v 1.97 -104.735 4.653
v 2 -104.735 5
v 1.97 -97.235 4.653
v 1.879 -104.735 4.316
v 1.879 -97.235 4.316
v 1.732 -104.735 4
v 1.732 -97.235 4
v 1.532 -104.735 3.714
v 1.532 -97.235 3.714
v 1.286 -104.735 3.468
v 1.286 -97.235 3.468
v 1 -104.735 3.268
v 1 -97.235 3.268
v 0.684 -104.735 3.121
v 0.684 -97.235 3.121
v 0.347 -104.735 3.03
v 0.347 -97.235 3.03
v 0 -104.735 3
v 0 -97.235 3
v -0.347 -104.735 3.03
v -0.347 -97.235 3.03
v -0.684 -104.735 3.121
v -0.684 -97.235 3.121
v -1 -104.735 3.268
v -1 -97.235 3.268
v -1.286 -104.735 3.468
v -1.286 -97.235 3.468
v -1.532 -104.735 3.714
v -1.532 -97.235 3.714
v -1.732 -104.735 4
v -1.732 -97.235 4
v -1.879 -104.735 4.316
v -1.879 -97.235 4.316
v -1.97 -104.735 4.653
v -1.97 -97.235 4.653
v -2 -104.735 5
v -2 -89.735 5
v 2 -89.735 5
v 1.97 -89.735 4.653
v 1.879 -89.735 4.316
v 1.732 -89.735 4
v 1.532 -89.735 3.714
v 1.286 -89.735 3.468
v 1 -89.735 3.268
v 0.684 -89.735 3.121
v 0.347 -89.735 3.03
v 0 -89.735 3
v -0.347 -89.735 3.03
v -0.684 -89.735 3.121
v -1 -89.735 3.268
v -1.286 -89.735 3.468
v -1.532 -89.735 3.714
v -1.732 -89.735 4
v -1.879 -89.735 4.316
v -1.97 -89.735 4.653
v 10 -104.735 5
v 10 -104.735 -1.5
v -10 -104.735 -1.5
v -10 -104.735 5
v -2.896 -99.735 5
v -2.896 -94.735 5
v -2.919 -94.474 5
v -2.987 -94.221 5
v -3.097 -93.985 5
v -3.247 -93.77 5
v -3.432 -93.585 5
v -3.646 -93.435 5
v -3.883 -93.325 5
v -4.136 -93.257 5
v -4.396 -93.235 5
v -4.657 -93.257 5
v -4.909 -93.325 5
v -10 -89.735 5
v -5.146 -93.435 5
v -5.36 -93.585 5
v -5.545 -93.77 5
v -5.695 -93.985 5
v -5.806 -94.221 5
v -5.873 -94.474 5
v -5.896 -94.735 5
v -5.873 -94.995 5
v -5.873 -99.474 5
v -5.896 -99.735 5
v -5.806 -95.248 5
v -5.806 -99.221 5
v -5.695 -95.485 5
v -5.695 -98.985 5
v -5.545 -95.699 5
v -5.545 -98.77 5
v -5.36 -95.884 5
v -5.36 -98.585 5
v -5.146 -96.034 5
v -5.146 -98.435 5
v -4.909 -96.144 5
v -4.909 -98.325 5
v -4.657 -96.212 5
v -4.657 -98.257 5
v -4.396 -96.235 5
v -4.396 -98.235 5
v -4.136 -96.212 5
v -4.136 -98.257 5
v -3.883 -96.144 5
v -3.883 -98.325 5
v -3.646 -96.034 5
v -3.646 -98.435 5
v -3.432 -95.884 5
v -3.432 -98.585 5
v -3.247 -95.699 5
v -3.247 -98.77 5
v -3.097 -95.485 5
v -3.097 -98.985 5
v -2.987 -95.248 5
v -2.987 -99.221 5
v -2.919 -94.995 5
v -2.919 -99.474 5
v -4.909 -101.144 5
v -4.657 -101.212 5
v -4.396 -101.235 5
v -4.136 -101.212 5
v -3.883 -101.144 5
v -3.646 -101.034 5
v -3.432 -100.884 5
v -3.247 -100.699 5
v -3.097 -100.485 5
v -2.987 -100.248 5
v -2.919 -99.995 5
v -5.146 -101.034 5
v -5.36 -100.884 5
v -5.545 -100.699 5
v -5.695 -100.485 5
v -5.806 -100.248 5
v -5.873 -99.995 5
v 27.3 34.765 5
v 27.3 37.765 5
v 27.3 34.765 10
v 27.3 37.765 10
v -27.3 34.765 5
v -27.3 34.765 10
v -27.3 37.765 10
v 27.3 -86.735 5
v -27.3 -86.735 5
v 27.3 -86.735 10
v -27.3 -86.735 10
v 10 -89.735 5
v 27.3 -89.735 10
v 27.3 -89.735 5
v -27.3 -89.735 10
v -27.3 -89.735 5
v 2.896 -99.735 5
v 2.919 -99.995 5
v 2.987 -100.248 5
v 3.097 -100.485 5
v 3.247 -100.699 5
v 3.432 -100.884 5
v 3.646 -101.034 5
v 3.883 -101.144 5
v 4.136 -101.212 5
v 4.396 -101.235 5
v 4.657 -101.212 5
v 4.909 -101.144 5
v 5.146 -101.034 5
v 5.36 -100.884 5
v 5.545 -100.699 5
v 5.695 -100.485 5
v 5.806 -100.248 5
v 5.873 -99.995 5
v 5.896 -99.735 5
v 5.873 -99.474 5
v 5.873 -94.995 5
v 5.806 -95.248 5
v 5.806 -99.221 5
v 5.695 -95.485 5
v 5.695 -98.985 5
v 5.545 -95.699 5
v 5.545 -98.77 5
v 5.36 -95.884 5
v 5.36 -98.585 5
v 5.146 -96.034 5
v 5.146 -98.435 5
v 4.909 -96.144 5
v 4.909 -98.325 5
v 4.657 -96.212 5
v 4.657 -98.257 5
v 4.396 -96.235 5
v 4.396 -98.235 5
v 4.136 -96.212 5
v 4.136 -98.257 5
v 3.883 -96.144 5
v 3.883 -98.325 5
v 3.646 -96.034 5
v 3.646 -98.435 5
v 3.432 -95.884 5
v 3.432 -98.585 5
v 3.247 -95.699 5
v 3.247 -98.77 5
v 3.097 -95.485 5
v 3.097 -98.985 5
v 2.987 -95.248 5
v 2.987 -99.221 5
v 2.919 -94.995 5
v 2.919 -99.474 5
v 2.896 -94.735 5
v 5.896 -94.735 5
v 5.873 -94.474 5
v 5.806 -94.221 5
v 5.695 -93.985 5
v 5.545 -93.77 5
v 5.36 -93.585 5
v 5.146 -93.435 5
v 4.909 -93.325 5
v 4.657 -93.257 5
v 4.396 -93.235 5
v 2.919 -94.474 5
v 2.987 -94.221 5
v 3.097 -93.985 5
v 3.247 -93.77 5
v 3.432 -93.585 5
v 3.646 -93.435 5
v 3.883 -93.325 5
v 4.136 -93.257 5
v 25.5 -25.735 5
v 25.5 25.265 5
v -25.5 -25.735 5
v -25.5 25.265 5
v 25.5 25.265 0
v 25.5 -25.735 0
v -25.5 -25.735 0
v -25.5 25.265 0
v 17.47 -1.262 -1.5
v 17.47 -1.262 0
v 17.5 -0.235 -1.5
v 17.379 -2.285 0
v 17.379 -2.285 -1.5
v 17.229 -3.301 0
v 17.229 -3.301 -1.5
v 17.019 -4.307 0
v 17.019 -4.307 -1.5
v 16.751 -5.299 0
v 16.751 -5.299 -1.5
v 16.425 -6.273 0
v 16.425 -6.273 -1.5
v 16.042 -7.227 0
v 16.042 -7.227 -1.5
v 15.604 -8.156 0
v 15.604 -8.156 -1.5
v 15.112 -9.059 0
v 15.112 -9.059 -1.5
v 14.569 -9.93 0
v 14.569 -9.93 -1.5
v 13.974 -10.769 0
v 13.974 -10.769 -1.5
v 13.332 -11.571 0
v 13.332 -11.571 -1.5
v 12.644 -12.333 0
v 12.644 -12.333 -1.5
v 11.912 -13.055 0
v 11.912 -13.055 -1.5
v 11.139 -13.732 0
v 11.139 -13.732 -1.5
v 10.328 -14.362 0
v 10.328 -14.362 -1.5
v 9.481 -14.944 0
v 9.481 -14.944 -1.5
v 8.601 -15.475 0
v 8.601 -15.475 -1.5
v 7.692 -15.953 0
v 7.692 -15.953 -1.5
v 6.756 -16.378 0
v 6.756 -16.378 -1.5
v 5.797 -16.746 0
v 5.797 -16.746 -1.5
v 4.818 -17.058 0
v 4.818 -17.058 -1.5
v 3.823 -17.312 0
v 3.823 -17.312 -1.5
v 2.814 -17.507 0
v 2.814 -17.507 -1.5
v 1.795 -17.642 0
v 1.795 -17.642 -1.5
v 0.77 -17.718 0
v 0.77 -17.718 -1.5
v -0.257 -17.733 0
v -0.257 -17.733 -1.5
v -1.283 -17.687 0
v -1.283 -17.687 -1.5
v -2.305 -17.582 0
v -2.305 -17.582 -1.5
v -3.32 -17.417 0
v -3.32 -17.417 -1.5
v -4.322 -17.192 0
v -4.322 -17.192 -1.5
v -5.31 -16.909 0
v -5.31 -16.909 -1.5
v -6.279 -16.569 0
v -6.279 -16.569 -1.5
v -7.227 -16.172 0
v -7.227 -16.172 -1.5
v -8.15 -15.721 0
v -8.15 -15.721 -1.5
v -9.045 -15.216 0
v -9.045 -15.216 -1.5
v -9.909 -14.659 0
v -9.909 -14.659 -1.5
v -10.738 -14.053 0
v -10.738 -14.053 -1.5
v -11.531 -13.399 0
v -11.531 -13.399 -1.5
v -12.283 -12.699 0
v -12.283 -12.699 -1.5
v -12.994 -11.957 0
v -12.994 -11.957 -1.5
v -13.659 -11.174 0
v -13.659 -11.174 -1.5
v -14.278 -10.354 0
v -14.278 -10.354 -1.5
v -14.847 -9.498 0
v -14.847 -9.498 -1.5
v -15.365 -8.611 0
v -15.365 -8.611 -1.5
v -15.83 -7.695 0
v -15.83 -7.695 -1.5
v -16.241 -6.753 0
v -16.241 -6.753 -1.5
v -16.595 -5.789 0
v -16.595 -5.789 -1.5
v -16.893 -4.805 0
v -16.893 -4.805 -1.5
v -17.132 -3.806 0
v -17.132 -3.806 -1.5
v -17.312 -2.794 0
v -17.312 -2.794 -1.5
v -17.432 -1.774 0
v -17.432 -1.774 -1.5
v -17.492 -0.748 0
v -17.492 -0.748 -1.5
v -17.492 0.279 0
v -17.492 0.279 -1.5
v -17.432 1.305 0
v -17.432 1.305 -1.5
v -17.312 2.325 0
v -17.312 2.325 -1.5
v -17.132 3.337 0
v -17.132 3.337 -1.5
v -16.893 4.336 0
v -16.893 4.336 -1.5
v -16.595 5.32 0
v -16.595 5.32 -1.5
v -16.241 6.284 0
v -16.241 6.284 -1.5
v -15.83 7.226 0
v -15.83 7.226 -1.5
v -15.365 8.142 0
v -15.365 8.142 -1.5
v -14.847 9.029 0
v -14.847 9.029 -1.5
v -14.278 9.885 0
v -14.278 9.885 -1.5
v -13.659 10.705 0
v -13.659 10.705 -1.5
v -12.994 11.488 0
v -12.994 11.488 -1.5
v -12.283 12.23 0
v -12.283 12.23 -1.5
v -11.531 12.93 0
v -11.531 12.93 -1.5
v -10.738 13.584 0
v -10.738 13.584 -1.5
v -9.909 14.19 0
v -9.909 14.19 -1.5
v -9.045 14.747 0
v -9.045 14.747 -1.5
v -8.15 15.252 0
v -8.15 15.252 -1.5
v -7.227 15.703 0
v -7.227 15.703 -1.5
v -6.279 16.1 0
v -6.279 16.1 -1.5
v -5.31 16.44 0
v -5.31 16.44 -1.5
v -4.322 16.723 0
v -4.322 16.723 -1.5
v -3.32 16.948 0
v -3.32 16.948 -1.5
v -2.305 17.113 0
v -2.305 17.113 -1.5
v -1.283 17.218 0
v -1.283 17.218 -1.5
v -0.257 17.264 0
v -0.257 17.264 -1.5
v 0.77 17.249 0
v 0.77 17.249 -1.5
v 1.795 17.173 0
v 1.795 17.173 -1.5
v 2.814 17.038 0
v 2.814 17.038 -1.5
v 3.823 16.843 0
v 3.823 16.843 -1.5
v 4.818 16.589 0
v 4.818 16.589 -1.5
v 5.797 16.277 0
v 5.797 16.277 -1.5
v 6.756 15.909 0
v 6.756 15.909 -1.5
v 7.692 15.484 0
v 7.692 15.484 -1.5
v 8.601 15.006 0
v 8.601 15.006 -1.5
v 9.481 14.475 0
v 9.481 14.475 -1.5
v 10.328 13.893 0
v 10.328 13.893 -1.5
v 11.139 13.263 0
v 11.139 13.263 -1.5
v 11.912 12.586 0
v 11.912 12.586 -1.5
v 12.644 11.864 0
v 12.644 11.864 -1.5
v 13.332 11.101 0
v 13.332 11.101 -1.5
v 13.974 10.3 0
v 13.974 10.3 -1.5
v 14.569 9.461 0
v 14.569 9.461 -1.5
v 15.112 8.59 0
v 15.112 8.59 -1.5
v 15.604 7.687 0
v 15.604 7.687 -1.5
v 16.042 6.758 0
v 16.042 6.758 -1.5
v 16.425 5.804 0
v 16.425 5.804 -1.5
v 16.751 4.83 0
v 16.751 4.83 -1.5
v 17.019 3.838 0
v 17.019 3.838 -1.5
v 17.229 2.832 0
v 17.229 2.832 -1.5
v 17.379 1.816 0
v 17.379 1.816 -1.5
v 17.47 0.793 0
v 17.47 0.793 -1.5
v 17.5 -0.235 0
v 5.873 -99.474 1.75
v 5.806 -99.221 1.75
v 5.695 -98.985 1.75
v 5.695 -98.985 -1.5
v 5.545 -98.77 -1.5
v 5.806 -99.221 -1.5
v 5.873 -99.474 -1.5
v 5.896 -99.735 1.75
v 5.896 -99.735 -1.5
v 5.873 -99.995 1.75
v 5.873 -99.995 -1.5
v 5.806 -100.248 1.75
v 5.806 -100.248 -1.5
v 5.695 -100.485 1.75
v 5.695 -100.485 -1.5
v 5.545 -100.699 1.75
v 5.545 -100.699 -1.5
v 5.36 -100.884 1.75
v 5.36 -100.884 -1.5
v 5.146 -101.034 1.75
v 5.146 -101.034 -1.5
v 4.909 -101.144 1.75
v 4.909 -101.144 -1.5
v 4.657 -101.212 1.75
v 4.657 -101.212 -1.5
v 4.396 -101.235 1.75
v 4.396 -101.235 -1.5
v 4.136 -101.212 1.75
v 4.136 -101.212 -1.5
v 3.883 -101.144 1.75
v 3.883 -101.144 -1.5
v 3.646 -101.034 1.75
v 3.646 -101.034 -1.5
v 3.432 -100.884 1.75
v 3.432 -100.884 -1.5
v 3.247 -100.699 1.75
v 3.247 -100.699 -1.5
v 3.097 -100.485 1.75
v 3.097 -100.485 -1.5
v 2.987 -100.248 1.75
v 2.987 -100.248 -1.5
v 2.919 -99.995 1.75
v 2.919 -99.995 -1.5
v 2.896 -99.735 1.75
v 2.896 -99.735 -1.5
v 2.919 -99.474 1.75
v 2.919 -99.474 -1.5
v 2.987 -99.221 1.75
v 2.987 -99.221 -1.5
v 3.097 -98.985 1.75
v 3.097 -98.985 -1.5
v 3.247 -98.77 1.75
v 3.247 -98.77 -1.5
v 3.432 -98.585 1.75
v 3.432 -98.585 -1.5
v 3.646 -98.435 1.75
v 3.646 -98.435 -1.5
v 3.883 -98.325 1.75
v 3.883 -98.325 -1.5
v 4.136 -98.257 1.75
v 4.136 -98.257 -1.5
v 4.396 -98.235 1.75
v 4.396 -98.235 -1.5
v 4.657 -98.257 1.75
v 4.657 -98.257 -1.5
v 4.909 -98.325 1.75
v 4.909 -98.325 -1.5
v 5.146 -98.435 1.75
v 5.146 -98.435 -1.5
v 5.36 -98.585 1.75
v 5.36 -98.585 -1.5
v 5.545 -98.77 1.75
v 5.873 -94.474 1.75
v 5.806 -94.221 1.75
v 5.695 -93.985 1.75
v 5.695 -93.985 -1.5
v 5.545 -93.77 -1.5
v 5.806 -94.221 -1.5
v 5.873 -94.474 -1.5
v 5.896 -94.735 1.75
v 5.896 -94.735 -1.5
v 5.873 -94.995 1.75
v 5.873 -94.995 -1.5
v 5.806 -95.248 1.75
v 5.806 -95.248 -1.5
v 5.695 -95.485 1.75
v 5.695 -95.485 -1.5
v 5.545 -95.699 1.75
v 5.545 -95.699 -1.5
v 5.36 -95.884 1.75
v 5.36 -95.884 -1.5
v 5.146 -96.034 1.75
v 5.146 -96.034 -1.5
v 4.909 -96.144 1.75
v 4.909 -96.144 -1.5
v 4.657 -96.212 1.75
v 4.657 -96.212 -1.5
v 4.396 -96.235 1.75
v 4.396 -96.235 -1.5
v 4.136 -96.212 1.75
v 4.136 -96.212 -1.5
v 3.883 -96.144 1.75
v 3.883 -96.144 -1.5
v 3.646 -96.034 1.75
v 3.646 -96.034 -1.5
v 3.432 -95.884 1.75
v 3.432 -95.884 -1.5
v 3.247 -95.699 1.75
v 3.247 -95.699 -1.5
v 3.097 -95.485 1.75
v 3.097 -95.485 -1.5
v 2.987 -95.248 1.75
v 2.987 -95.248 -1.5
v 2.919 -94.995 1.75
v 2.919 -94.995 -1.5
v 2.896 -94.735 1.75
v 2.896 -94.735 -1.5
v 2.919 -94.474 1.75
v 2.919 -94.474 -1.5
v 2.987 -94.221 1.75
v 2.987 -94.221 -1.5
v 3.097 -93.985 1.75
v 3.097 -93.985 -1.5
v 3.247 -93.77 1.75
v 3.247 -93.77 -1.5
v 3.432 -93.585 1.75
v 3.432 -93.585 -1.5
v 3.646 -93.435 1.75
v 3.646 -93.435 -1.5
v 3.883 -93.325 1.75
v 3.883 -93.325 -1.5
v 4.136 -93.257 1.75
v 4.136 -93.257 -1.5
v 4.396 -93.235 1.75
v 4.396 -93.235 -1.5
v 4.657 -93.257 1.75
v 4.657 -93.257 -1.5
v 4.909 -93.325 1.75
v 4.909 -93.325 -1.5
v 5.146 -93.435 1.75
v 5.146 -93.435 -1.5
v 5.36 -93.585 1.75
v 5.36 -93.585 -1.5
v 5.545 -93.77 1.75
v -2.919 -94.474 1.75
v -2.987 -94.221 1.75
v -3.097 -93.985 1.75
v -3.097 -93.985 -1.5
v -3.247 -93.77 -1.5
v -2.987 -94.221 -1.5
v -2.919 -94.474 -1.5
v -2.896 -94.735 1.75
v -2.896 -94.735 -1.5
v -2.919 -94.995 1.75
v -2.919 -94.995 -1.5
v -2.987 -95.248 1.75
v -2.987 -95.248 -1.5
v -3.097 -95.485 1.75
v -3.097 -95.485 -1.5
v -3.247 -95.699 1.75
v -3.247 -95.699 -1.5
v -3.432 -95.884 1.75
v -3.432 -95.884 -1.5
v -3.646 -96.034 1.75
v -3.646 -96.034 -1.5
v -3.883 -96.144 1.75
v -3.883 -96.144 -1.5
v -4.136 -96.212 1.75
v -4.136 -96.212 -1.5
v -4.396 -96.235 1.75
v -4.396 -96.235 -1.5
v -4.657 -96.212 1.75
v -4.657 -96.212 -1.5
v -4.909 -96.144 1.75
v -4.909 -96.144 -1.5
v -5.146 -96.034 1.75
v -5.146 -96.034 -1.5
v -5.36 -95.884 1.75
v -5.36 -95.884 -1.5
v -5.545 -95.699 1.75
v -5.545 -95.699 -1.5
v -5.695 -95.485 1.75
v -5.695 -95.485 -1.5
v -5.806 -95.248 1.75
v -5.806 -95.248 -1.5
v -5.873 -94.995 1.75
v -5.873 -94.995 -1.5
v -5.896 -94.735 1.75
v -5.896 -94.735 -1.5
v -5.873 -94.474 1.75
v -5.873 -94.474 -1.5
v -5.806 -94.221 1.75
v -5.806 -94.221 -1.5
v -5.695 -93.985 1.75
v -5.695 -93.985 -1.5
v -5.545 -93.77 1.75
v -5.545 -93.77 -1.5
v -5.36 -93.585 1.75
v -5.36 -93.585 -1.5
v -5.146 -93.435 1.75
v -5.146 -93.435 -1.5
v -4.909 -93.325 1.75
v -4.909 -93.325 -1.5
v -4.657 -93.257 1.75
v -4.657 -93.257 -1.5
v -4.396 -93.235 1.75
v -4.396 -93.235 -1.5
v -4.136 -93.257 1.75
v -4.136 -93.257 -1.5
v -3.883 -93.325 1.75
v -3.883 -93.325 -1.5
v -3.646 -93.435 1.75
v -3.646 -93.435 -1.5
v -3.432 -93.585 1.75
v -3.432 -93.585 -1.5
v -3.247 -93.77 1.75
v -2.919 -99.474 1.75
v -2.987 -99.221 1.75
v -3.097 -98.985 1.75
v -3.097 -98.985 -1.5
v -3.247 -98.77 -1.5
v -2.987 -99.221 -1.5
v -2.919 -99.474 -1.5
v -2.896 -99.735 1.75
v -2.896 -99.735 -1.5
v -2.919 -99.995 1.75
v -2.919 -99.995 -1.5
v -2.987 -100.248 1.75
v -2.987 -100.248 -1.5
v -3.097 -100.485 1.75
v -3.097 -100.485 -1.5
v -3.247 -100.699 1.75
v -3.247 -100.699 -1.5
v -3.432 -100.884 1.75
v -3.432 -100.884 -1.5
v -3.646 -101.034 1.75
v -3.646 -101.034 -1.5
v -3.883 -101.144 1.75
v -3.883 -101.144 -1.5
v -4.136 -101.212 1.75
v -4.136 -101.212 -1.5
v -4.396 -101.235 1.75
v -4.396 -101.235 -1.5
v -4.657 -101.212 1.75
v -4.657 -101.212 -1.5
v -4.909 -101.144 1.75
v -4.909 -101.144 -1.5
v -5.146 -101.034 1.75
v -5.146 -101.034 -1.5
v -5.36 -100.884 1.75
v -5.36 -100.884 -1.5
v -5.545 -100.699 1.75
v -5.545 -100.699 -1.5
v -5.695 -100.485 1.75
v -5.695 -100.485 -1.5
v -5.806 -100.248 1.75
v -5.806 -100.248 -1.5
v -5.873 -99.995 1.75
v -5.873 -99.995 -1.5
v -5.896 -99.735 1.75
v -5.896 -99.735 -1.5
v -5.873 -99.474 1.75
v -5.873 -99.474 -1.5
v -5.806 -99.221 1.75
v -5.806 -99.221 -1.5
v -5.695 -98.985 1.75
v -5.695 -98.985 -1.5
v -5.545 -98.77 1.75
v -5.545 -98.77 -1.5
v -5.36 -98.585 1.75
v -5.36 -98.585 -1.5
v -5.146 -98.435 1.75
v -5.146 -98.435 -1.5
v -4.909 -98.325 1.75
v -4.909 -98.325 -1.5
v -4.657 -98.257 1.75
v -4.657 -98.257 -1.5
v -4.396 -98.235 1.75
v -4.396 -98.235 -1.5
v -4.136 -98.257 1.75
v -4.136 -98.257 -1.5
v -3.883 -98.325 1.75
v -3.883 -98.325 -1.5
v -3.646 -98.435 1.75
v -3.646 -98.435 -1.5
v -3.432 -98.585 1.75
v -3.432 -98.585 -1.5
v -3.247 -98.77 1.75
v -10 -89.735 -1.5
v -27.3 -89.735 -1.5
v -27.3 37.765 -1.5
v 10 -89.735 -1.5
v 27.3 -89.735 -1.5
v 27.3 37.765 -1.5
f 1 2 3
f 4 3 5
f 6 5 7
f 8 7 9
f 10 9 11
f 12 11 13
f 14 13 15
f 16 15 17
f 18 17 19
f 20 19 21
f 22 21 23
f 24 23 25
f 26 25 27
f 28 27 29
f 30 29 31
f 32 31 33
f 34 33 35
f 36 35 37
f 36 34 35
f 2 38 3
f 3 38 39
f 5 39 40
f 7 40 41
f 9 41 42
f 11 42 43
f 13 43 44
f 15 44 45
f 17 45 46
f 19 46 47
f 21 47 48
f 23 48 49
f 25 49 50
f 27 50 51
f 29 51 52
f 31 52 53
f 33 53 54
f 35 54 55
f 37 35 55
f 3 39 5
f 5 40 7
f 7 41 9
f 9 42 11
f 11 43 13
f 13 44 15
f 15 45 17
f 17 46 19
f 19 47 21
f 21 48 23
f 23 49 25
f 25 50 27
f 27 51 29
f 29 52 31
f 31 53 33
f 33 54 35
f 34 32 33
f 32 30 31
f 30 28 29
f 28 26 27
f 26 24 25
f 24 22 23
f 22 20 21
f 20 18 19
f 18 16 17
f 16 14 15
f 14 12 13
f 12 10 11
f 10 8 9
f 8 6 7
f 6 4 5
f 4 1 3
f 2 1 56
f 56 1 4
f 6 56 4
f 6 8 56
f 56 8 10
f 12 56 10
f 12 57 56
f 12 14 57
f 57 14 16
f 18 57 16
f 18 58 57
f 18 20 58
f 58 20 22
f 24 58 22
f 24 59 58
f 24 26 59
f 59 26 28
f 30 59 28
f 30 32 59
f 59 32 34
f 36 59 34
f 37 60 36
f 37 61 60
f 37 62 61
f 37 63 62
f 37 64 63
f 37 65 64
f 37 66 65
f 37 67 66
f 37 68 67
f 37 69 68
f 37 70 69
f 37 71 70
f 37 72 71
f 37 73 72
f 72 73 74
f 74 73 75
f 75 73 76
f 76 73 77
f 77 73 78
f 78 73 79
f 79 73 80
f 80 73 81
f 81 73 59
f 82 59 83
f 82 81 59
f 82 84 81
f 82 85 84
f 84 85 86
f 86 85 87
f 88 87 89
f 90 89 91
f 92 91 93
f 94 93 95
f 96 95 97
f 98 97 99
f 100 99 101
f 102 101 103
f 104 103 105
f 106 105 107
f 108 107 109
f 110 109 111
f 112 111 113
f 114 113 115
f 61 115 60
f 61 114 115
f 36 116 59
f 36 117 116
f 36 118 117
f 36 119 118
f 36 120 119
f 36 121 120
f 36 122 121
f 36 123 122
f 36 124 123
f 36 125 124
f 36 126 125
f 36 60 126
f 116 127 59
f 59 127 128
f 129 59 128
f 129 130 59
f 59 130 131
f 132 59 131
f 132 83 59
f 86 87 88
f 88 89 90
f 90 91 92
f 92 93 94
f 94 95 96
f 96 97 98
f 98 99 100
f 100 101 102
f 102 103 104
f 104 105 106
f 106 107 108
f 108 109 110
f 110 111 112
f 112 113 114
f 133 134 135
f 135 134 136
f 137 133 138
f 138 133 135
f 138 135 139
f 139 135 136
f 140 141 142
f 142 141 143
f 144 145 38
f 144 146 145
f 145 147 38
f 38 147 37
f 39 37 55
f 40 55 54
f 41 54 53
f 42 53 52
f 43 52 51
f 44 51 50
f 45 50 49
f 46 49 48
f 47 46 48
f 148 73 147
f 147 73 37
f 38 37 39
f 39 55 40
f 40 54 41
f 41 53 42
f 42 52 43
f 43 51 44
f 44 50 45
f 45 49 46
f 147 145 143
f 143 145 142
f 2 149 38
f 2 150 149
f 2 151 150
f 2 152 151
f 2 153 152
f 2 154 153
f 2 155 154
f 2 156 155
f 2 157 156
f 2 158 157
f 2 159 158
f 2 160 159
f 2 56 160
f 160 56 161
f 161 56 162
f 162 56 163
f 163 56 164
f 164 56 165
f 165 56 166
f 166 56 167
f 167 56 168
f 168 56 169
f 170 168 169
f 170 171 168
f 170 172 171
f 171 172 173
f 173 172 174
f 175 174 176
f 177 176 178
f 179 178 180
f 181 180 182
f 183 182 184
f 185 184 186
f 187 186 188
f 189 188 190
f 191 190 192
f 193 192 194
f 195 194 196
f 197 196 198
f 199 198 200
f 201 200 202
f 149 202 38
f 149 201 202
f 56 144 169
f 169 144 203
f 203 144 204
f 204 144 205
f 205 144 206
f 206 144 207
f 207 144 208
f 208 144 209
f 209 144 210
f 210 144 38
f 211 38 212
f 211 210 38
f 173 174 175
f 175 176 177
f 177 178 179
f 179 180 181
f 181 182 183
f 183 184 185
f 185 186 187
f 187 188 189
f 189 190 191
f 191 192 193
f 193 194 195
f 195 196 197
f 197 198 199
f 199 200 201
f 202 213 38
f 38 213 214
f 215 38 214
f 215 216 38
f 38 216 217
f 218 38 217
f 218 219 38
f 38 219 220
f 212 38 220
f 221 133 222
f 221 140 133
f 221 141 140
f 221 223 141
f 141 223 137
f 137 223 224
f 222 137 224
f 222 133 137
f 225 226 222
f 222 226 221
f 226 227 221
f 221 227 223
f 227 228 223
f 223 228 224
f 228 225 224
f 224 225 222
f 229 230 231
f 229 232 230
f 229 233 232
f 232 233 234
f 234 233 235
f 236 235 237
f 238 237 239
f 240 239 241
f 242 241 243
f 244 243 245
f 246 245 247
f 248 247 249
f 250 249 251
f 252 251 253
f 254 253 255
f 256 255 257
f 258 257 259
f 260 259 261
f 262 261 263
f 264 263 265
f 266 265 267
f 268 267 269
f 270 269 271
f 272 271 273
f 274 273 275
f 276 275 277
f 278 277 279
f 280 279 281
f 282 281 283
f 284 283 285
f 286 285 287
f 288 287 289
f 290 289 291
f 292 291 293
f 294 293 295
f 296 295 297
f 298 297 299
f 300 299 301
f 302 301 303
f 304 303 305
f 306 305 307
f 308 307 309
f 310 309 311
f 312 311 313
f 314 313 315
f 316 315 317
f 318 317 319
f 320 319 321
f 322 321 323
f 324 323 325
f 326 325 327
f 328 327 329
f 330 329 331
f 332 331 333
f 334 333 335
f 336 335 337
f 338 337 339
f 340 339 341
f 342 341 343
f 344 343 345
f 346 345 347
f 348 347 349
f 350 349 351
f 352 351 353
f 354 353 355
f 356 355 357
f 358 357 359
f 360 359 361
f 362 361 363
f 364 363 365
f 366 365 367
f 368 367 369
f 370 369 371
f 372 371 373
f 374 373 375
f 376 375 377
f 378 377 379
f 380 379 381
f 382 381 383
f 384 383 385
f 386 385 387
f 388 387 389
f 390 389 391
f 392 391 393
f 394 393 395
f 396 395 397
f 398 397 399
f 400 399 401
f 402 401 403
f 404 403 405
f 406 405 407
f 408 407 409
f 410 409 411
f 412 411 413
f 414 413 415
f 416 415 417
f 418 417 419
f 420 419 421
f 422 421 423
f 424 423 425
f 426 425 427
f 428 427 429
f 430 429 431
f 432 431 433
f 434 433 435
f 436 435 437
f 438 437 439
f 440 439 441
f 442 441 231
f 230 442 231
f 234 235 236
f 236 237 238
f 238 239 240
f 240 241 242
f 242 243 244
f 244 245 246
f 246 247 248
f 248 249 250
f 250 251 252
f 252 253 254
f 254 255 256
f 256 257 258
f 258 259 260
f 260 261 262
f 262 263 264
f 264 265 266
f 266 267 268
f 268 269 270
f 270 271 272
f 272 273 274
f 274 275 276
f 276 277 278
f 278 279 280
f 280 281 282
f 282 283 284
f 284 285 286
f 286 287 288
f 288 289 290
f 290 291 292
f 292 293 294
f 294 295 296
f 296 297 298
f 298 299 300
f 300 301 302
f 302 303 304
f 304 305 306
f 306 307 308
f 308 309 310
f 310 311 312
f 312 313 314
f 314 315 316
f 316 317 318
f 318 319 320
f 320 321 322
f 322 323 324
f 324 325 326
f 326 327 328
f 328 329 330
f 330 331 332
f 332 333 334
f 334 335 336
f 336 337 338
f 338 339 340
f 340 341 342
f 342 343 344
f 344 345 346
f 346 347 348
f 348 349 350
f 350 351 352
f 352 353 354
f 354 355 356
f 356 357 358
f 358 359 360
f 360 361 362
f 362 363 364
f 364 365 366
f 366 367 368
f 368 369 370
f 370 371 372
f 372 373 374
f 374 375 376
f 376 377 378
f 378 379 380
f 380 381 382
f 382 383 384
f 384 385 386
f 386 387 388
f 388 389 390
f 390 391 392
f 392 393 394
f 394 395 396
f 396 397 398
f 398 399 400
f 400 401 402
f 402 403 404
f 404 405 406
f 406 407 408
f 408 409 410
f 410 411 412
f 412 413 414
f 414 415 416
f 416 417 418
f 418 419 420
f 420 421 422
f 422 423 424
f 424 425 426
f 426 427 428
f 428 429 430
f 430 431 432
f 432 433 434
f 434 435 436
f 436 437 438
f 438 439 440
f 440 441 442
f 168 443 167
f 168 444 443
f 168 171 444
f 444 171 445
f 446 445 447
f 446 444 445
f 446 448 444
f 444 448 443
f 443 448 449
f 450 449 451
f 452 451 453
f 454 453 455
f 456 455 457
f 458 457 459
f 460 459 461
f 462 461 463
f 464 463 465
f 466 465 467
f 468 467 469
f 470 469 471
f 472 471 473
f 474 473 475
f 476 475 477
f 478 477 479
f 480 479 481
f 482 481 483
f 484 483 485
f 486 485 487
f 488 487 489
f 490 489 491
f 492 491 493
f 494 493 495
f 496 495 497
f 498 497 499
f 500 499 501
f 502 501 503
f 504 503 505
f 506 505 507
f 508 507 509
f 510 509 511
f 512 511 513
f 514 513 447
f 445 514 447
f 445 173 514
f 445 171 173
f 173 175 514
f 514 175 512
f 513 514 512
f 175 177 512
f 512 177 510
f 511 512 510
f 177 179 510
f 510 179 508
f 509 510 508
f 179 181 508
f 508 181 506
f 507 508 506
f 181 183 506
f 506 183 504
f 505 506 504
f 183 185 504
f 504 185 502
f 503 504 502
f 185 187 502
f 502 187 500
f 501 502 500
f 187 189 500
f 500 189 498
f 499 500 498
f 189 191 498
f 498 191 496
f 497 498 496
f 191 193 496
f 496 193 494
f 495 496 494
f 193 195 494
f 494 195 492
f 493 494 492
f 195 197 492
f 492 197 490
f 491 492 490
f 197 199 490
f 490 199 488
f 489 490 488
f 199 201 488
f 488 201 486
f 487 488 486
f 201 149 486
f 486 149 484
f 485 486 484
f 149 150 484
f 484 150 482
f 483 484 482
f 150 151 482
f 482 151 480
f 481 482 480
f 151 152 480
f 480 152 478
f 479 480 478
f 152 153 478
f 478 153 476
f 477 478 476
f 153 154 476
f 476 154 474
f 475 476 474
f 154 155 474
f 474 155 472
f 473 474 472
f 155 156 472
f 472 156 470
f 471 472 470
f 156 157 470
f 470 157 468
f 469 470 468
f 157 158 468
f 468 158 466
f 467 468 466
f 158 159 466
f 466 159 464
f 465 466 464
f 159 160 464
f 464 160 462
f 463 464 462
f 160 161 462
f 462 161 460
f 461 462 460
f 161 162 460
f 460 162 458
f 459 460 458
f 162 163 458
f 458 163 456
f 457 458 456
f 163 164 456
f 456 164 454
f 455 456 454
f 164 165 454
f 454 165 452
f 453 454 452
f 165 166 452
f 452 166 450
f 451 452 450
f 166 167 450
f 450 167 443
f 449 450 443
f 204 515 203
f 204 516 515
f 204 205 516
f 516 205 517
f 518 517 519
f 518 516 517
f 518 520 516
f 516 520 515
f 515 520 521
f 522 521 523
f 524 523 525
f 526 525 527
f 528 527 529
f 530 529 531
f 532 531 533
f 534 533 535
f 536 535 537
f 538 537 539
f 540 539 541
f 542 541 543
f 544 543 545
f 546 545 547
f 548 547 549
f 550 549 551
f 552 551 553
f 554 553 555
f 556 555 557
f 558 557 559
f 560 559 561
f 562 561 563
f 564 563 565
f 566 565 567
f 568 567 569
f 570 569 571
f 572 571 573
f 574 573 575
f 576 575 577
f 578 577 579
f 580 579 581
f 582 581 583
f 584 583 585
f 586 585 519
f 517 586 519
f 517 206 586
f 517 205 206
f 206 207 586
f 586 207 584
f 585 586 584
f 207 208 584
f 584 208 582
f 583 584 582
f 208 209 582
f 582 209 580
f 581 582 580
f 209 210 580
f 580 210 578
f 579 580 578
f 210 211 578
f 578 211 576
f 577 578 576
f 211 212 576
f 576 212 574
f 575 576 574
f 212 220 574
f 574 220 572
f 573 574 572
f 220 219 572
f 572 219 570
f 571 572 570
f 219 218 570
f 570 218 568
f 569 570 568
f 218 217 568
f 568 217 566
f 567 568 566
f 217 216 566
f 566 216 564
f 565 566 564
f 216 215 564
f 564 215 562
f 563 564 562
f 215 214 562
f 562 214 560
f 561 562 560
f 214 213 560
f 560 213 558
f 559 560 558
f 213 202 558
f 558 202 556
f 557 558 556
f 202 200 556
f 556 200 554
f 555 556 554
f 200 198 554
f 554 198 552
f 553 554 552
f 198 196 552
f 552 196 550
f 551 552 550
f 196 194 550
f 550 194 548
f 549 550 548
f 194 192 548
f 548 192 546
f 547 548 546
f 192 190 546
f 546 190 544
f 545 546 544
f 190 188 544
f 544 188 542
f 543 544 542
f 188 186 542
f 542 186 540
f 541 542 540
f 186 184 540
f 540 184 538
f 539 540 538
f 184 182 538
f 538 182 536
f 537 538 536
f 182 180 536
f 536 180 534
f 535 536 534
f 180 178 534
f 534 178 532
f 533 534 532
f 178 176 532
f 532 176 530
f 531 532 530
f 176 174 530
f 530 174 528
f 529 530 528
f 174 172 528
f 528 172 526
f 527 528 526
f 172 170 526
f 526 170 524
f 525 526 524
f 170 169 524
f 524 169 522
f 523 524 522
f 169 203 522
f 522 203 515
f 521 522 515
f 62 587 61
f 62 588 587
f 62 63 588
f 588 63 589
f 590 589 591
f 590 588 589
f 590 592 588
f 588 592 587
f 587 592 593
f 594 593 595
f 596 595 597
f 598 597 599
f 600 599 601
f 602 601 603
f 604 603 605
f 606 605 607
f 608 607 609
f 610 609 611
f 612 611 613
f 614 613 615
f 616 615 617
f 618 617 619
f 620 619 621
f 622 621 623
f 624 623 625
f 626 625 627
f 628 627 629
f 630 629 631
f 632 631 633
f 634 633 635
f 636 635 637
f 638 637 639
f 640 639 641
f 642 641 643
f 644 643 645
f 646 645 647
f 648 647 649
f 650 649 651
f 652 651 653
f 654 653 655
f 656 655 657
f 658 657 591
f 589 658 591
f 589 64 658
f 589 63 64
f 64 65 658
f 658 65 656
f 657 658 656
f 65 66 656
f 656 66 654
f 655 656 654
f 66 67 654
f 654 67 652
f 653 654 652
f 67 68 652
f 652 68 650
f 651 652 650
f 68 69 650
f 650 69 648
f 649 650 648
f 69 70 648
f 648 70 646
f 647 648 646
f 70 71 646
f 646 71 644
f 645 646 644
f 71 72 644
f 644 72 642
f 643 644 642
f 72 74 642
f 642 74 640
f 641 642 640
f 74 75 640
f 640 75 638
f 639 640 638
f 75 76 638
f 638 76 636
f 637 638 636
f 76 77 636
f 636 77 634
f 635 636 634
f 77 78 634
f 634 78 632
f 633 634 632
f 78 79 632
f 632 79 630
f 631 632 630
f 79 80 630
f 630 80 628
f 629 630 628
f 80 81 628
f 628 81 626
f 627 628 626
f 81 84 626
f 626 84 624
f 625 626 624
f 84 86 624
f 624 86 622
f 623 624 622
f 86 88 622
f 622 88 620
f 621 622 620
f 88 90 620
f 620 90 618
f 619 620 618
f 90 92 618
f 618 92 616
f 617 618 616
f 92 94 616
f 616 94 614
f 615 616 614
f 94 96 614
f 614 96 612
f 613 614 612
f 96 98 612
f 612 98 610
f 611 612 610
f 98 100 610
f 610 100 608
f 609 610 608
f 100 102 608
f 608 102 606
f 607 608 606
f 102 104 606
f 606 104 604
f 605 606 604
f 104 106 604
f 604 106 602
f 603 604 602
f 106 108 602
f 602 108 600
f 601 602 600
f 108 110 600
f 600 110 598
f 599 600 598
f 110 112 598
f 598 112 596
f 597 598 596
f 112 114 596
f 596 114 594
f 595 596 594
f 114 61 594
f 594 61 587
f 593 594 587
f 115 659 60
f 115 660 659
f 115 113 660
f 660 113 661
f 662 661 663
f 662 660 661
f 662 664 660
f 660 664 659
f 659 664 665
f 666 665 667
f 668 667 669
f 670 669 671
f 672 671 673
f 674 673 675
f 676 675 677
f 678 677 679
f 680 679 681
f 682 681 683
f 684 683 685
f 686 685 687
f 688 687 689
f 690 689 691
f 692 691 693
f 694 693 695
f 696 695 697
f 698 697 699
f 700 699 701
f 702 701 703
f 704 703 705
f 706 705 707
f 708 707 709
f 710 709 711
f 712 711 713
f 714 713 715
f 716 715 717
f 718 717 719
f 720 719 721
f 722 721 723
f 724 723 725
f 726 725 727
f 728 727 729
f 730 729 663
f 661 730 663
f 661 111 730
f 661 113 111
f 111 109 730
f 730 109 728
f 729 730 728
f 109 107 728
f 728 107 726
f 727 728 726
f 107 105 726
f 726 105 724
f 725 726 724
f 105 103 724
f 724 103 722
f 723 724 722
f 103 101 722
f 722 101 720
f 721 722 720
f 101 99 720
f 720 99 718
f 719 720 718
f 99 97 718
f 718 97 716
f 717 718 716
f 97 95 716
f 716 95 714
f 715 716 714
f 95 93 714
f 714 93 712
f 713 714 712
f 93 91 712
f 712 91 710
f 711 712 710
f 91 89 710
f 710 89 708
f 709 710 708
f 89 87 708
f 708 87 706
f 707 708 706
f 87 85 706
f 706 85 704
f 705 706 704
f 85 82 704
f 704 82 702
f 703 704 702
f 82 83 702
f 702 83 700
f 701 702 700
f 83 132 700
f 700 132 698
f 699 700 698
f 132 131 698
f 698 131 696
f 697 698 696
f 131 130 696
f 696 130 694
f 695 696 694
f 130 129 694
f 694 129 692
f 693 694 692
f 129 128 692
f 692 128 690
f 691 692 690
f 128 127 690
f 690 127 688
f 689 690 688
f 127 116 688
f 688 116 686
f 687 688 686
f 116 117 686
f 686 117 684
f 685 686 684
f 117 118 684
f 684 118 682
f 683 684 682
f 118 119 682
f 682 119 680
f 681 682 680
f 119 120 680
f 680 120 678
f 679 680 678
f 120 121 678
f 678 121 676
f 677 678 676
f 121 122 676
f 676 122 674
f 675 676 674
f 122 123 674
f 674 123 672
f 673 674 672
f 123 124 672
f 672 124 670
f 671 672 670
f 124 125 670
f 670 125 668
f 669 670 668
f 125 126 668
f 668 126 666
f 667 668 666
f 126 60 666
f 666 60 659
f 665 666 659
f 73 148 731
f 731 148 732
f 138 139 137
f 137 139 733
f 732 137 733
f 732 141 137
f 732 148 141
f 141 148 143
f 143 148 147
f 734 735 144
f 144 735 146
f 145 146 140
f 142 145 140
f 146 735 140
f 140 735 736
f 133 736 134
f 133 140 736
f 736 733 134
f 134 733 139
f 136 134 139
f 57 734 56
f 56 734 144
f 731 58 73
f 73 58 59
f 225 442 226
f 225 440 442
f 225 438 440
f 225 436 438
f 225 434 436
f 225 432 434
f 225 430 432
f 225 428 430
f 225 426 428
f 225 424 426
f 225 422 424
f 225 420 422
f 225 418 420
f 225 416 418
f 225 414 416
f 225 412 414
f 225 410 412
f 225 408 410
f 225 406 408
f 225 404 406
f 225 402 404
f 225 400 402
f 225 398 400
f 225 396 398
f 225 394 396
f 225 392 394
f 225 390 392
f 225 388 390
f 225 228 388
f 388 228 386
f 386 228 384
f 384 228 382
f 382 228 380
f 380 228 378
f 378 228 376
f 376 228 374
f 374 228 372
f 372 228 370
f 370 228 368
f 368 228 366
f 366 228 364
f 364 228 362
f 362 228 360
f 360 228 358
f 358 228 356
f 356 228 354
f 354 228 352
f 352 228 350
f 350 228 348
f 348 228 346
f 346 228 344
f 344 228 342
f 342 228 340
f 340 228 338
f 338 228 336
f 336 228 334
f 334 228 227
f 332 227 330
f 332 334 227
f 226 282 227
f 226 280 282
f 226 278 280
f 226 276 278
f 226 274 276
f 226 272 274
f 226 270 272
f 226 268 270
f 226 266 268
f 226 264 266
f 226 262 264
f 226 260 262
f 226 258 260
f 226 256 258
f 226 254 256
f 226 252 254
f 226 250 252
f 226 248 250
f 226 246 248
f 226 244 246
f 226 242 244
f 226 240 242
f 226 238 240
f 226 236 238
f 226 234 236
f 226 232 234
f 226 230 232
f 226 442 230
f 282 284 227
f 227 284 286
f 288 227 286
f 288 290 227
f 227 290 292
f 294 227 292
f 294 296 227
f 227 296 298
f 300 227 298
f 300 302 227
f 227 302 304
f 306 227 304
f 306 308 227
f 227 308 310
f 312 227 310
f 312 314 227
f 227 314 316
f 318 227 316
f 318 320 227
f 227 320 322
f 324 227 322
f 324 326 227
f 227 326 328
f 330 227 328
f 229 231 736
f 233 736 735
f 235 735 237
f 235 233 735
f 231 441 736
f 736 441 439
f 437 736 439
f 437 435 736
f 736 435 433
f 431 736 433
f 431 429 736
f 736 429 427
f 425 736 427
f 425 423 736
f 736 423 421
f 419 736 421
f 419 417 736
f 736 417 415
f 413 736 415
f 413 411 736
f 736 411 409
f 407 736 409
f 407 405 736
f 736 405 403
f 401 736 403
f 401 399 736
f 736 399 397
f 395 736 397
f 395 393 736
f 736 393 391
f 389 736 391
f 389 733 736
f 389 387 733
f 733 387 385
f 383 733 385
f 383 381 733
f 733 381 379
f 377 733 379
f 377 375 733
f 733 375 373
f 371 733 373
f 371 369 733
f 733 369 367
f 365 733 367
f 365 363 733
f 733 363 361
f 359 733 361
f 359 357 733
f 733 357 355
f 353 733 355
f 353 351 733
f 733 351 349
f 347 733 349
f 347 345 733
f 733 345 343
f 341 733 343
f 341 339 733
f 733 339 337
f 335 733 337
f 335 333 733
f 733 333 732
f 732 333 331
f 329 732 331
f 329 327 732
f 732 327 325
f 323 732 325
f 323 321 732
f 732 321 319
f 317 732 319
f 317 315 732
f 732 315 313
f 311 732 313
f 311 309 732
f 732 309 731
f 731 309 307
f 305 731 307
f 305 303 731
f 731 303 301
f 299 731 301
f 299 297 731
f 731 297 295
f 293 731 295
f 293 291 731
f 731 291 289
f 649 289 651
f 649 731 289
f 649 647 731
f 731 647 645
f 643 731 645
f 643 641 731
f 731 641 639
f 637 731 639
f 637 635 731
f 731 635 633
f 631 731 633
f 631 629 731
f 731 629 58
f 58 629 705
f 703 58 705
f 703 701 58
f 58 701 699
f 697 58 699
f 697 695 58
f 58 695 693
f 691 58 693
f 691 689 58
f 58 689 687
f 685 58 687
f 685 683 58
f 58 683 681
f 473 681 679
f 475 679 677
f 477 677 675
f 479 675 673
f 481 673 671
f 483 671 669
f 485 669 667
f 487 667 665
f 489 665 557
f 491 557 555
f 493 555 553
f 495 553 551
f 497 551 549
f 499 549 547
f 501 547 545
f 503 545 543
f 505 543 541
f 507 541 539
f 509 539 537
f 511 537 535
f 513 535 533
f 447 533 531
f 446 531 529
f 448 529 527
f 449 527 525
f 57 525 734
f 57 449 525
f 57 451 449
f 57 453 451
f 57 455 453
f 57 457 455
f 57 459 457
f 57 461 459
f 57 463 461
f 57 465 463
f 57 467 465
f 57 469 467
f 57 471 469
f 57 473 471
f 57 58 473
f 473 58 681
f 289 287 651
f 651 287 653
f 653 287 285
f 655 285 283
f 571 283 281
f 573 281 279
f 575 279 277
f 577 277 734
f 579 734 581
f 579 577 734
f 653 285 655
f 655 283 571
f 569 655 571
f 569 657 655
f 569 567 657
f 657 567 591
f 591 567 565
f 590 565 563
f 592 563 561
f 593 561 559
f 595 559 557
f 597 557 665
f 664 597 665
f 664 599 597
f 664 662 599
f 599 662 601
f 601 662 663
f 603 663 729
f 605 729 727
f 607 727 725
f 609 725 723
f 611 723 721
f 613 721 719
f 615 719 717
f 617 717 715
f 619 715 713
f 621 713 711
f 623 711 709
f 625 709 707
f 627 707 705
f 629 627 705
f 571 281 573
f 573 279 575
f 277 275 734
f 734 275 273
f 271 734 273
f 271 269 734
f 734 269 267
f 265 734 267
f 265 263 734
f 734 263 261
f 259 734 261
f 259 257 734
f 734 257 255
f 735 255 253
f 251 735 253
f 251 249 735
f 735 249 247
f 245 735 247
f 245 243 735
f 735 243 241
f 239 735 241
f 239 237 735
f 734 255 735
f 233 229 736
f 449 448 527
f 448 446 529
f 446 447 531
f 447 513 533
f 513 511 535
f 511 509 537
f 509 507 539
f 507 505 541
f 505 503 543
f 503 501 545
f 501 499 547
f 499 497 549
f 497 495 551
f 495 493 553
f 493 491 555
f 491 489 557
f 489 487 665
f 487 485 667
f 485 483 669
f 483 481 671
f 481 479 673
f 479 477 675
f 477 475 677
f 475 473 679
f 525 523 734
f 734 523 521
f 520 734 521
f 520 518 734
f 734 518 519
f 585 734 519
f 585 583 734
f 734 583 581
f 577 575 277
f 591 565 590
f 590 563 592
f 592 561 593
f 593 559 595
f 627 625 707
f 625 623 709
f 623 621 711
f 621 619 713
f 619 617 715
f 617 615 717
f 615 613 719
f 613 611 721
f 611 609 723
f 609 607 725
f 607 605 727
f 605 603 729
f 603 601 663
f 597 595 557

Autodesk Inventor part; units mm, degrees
ref_plane "YZ Plane" through (0, 0, 0) normal (1, 0, 0) x (0, 1, 0)
ref_plane "XZ Plane" through (0, 0, 0) normal (0, 1, 0) x (-1, 0, 0)
ref_plane "XY Plane" through (0, 0, 0) normal (0, 0, 1) x (1, 0, 0)
sketch "Shutter" plane through (0, 0, 0) normal (0, 0, 1) x (1, 0, 0)
  line L0 (-25.5, 25.2655) -> (25.5, 25.2655)
  line L1 (25.5, 25.2655) -> (25.5, -25.7345)
  line L2 (25.5, -25.7345) -> (-25.5, -25.7345)
  line L3 (-25.5, -25.7345) -> (-25.5, 25.2655)
  line L4 (0, -25.7345) -> (0, 25.2655) construction
  circle A0 centre (0, -0.2345) radius 11 construction
  circle A1 centre (0, -0.2345) radius 17.5
  circle A2 centre (0, -0.2345) radius 20
  line L5 (-27.3, 37.7655) -> (-27.3, -89.7345)
  circle A3 centre (-4.3962, -99.7345) radius 1.5
  circle A4 centre (-4.3962, -94.7345) radius 1.5
  circle A5 centre (4.3962, -94.7345) radius 1.5
  circle A6 centre (4.3962, -99.7345) radius 1.5
  line L6 (27.3, 37.7655) -> (27.3, -89.7345)
  line L7 (-49, 0) -> (42, 0) construction
  line L8 (-27.3, 37.7655) -> (27.3, 37.7655)
  line L9 (-10, -104.7345) -> (10, -104.7345)
  line L10 (27.3, 37.7655) -> (-27.3, 37.7655)
  line L11 (-27.3, -89.7345) -> (27.3, -89.7345)
  line L12 (-27.3, -86.7345) -> (27.3, -86.7345)
  line L13 (0, -104.7345) -> (-10, -104.7345)
  line L14 (-10, -104.7345) -> (-10, -89.7345)
  line L15 (0, -104.7345) -> (10, -104.7345)
  line L16 (10, -104.7345) -> (10, -89.7345)
  point P0 (0, 17.2655)
  point P1 (0, 10.7655)
  dimension "d0" = 22
  dimension "d1" = 35
  dimension "d2" = 40
  dimension "d12" = 3
  dimension "d13" = 3
  dimension "d14" = 5
  dimension "d16" = 25.5
  dimension "d17" = 51
  dimension "d18" = 51
  dimension "d33" = 142.5
  dimension "d34" = 5
  dimension "d37" = 3
  dimension "d40" = 10
  dimension "d41" = 10
extrude "Extrusion1" add sketch "Shutter" against normal blind 1.5 contours L0 L1 L2 L3 | A2 | L8 L6 L12 L5 | L12 L6 L11 L5 | L11 L16 L9 L14
extrude "Extrusion2" add sketch "Shutter" along normal blind 5 contours L8 L6 L12 L5 | L12 L6 L11 L5 | L11 L16 L9 L14
ref_plane "Work Plane2" through (0, -85.7345, -1.5) normal (-1, 0, 0) x (0, 0, 1)
sketch "Sketch4" plane through (0, 0, 5) normal (0, 0, 1) x (1, 0, 0)
  line L0 (-27.3, 37.7655) -> (-27.3, -85.7345)
  line L1 (-27.3, 37.7655) -> (-27.3, 34.7655)
  line L2 (-27.3, 34.7655) -> (27.3, 34.7655)
  line L3 (27.3, -85.7345) -> (27.3, 37.7655)
  line L4 (27.3, 37.7655) -> (-27.3, 37.7655)
  line L5 (27.3, 37.7655) -> (-27.3, 37.7655)
  line L6 (-27.3, 34.7655) -> (-27.3, 37.7655)
  line L7 (27.3, 34.7655) -> (27.3, 37.7655)
  line L8 (27.3, -104.7345) -> (-10, -104.7345) projected
  line L9 (-27.3, -89.7345) -> (-27.3, 37.7655) projected
  line L10 (-27.3, -89.7345) -> (27.3, -89.7345)
  line L11 (27.3, 37.7655) -> (27.3, -89.7345) projected
  line L12 (27.3, -86.7345) -> (-27.3, -86.7345)
  line L13 (-27.3, -89.7345) -> (-27.3, -86.7345)
  line L14 (27.3, -89.7345) -> (27.3, -86.7345)
  point P0 (0, 0)
  dimension "d29" = 3
  dimension "d38" = 15
  dimension "d39" = 3
extrude "Extrusion4" add sketch "Sketch4" along normal blind 5 contours L4 L3 L2 L0 | L12 L11 L10 L9
sketch "Sketch5" plane through (-10, -104.7345, -1.5) normal (0, -1, 0) x (1, 0, 0)
  line L0 (0, 6.5) -> (20, 6.5) projected
  circle A0 centre (10, 6.5) radius 2
  dimension "d42" = 4
extrude "Extrusion5" cut sketch "Sketch5" against normal up to surface (15 mm away)
properties part number "PMT_Adaptor_Shutter"
